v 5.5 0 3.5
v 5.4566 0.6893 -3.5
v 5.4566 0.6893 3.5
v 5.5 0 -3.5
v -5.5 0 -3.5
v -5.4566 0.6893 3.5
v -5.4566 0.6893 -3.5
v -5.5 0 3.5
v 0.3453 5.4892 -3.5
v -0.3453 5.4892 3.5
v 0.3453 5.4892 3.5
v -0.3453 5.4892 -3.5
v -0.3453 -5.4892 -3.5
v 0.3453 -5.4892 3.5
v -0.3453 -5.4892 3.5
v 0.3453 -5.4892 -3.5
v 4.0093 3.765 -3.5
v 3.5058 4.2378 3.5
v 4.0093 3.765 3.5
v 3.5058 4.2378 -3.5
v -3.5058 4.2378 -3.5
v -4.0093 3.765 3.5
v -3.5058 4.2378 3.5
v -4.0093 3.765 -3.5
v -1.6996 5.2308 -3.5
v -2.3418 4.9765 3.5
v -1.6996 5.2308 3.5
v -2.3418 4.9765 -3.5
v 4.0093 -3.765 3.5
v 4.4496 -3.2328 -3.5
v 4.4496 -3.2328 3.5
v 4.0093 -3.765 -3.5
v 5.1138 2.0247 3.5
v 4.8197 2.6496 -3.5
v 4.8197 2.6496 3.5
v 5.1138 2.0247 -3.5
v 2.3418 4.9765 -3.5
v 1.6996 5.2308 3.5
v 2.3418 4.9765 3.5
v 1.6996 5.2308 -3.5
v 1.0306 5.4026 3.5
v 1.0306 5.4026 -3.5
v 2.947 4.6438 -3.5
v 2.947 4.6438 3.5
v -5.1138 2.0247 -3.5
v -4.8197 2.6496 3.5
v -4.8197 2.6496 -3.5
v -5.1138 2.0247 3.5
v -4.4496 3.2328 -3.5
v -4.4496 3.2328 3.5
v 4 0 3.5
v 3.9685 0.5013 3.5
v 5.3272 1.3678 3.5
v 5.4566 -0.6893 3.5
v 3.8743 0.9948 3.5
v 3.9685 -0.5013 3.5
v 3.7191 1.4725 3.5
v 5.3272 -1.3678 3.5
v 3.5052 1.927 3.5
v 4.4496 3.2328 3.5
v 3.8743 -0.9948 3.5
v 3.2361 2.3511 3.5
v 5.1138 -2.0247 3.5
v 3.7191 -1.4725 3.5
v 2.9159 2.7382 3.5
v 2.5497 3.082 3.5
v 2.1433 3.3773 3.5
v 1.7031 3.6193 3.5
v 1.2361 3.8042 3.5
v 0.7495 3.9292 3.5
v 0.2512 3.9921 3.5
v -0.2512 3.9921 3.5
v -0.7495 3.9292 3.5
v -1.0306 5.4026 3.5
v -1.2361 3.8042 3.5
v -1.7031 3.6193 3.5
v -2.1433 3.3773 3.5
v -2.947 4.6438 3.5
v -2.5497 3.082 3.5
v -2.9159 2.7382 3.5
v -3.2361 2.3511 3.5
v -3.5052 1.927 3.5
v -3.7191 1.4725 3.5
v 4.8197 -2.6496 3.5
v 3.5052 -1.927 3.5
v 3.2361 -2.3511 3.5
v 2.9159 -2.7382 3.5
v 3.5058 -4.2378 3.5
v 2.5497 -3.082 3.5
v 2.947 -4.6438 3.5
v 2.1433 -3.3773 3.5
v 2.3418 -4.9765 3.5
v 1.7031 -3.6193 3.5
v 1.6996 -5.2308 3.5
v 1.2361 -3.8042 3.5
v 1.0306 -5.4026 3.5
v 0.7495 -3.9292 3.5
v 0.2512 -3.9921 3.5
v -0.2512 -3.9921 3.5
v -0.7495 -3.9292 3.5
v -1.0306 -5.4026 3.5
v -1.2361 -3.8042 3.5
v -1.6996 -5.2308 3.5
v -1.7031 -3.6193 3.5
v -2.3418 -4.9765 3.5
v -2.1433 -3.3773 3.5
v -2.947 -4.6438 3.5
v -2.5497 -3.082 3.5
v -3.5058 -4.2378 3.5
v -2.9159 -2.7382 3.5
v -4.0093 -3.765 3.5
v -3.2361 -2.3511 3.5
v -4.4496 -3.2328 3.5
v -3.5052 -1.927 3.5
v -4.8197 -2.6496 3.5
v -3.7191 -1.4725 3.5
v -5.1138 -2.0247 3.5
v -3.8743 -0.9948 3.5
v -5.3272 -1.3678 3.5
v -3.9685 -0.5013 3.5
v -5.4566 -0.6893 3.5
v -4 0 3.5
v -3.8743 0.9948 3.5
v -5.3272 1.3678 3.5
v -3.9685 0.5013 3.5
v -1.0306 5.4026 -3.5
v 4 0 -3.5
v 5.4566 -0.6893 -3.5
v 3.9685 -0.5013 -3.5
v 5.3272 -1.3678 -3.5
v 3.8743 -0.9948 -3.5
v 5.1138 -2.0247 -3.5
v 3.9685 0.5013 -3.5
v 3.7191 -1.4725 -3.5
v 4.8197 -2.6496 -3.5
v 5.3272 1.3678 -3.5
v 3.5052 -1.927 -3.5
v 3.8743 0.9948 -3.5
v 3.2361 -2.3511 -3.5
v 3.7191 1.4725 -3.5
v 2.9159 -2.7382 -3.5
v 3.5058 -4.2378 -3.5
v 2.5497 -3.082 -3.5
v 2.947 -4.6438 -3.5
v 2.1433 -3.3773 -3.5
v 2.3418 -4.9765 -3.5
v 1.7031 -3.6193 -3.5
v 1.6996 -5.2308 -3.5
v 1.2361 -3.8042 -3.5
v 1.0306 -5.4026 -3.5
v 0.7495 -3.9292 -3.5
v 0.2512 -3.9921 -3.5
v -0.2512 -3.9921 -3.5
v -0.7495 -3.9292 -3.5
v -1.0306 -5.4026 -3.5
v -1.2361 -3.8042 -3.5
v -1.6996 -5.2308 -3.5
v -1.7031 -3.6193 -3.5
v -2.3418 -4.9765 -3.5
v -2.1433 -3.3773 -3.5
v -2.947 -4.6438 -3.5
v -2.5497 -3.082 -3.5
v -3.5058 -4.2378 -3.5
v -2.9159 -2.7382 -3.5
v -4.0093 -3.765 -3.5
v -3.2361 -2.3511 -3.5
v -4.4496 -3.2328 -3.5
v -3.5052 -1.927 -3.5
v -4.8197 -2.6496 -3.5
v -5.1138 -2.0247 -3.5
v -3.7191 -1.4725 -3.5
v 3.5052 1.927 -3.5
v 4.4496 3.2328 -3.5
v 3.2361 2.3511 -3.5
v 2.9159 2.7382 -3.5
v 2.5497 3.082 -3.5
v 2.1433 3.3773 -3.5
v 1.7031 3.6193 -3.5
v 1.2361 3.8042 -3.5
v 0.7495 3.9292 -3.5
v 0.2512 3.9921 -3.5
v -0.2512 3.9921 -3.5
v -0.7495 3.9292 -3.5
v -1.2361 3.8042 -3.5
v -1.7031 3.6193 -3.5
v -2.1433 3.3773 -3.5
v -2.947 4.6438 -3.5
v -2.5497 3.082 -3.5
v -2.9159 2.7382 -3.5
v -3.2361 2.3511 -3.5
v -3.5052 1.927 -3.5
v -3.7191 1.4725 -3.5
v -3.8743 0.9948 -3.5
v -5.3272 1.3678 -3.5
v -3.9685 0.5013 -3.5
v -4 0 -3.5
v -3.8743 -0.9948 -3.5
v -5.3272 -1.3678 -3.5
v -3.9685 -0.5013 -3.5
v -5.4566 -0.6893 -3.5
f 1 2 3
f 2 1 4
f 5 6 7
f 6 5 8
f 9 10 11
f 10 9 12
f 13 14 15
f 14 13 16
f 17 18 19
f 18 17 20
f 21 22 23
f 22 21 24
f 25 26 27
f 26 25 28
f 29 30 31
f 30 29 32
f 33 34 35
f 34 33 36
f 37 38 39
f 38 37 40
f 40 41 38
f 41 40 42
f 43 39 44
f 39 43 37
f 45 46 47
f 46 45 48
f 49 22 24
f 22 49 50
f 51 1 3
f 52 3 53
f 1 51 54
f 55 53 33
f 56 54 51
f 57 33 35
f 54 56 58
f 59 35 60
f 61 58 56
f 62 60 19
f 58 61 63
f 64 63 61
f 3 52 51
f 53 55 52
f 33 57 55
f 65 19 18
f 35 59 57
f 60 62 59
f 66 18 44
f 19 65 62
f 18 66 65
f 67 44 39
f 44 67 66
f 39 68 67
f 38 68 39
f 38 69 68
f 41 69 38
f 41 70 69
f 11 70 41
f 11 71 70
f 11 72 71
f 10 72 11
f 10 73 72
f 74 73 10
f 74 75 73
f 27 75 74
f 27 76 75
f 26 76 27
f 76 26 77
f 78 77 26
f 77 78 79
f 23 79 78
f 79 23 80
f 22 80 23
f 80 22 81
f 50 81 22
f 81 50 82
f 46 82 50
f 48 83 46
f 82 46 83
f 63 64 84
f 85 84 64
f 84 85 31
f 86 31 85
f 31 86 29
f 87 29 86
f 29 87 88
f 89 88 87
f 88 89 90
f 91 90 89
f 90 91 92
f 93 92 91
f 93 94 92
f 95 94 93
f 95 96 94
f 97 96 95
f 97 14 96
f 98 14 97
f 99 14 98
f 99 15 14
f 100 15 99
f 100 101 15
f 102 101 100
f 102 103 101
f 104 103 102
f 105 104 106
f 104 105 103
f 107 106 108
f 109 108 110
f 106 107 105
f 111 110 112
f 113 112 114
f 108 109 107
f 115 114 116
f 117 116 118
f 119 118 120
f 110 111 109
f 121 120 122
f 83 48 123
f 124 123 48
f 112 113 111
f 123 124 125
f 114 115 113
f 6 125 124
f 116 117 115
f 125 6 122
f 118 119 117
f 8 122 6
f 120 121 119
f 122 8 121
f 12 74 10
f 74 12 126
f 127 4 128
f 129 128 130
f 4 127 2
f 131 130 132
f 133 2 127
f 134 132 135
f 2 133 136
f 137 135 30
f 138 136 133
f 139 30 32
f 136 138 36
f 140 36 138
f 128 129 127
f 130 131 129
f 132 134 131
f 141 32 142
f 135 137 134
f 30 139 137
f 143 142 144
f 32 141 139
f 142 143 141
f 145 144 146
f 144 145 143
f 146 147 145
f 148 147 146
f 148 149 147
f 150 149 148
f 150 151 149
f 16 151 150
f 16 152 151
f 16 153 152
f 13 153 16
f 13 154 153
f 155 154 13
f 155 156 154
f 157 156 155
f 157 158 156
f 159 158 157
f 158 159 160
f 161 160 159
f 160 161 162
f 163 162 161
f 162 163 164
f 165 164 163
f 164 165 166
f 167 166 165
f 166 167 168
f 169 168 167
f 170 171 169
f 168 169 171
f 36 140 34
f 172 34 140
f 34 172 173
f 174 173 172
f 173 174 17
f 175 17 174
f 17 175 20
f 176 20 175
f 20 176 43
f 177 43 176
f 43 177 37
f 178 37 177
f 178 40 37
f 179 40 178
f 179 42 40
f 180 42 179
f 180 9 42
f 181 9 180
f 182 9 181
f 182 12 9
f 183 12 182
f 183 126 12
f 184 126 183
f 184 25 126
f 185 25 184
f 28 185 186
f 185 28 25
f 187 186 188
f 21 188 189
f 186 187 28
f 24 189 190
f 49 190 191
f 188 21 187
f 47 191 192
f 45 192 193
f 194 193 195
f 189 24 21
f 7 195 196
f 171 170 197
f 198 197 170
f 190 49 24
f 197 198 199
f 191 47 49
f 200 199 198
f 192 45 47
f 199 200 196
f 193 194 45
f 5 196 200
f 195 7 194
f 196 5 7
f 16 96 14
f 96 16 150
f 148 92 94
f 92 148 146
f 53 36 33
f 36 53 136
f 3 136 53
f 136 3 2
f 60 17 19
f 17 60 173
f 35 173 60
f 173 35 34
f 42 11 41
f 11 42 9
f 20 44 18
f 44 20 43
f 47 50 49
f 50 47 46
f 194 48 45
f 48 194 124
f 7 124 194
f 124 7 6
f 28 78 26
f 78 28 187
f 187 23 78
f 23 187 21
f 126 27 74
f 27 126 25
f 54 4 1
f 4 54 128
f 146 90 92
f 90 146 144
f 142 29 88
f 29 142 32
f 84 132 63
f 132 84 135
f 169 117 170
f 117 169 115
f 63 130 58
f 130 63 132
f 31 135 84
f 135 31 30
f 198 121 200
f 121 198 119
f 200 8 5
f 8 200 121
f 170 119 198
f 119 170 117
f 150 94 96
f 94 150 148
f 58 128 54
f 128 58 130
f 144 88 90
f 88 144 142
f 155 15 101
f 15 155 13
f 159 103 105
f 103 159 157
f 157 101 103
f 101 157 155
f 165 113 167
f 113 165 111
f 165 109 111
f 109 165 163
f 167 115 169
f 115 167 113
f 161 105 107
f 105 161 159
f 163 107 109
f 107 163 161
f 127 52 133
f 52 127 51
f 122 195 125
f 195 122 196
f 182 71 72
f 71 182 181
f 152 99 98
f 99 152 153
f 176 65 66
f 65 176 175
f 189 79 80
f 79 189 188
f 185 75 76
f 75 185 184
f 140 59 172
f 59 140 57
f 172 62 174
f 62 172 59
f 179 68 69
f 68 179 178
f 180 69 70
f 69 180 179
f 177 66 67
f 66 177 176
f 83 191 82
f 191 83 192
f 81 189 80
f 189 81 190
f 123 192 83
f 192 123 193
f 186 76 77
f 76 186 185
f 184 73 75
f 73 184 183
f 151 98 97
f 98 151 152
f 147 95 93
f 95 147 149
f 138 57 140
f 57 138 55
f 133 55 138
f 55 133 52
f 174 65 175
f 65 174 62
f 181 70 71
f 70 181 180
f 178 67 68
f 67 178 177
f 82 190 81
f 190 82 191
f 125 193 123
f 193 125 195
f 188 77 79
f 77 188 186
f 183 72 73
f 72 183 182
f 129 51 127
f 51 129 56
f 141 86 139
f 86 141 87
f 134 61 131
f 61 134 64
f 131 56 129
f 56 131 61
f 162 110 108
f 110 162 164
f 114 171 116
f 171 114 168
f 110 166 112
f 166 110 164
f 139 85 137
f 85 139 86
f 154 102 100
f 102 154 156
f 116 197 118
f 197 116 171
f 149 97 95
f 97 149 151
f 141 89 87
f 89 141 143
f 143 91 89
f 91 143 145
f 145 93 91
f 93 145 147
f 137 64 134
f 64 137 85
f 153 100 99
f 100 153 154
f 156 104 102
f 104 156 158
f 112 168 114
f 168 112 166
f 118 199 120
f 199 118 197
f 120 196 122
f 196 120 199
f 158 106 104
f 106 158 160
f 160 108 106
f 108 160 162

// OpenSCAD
$fn = 50;


difference() {
	union() {
		translate(v = [0, 0, -3.5000000000]) {
			cylinder(h = 7, r = 5.5000000000);
		}
	}
	union() {
		translate(v = [0, 0, -100.0000000000]) {
			cylinder(h = 200, r = 4);
		}
	}
}
